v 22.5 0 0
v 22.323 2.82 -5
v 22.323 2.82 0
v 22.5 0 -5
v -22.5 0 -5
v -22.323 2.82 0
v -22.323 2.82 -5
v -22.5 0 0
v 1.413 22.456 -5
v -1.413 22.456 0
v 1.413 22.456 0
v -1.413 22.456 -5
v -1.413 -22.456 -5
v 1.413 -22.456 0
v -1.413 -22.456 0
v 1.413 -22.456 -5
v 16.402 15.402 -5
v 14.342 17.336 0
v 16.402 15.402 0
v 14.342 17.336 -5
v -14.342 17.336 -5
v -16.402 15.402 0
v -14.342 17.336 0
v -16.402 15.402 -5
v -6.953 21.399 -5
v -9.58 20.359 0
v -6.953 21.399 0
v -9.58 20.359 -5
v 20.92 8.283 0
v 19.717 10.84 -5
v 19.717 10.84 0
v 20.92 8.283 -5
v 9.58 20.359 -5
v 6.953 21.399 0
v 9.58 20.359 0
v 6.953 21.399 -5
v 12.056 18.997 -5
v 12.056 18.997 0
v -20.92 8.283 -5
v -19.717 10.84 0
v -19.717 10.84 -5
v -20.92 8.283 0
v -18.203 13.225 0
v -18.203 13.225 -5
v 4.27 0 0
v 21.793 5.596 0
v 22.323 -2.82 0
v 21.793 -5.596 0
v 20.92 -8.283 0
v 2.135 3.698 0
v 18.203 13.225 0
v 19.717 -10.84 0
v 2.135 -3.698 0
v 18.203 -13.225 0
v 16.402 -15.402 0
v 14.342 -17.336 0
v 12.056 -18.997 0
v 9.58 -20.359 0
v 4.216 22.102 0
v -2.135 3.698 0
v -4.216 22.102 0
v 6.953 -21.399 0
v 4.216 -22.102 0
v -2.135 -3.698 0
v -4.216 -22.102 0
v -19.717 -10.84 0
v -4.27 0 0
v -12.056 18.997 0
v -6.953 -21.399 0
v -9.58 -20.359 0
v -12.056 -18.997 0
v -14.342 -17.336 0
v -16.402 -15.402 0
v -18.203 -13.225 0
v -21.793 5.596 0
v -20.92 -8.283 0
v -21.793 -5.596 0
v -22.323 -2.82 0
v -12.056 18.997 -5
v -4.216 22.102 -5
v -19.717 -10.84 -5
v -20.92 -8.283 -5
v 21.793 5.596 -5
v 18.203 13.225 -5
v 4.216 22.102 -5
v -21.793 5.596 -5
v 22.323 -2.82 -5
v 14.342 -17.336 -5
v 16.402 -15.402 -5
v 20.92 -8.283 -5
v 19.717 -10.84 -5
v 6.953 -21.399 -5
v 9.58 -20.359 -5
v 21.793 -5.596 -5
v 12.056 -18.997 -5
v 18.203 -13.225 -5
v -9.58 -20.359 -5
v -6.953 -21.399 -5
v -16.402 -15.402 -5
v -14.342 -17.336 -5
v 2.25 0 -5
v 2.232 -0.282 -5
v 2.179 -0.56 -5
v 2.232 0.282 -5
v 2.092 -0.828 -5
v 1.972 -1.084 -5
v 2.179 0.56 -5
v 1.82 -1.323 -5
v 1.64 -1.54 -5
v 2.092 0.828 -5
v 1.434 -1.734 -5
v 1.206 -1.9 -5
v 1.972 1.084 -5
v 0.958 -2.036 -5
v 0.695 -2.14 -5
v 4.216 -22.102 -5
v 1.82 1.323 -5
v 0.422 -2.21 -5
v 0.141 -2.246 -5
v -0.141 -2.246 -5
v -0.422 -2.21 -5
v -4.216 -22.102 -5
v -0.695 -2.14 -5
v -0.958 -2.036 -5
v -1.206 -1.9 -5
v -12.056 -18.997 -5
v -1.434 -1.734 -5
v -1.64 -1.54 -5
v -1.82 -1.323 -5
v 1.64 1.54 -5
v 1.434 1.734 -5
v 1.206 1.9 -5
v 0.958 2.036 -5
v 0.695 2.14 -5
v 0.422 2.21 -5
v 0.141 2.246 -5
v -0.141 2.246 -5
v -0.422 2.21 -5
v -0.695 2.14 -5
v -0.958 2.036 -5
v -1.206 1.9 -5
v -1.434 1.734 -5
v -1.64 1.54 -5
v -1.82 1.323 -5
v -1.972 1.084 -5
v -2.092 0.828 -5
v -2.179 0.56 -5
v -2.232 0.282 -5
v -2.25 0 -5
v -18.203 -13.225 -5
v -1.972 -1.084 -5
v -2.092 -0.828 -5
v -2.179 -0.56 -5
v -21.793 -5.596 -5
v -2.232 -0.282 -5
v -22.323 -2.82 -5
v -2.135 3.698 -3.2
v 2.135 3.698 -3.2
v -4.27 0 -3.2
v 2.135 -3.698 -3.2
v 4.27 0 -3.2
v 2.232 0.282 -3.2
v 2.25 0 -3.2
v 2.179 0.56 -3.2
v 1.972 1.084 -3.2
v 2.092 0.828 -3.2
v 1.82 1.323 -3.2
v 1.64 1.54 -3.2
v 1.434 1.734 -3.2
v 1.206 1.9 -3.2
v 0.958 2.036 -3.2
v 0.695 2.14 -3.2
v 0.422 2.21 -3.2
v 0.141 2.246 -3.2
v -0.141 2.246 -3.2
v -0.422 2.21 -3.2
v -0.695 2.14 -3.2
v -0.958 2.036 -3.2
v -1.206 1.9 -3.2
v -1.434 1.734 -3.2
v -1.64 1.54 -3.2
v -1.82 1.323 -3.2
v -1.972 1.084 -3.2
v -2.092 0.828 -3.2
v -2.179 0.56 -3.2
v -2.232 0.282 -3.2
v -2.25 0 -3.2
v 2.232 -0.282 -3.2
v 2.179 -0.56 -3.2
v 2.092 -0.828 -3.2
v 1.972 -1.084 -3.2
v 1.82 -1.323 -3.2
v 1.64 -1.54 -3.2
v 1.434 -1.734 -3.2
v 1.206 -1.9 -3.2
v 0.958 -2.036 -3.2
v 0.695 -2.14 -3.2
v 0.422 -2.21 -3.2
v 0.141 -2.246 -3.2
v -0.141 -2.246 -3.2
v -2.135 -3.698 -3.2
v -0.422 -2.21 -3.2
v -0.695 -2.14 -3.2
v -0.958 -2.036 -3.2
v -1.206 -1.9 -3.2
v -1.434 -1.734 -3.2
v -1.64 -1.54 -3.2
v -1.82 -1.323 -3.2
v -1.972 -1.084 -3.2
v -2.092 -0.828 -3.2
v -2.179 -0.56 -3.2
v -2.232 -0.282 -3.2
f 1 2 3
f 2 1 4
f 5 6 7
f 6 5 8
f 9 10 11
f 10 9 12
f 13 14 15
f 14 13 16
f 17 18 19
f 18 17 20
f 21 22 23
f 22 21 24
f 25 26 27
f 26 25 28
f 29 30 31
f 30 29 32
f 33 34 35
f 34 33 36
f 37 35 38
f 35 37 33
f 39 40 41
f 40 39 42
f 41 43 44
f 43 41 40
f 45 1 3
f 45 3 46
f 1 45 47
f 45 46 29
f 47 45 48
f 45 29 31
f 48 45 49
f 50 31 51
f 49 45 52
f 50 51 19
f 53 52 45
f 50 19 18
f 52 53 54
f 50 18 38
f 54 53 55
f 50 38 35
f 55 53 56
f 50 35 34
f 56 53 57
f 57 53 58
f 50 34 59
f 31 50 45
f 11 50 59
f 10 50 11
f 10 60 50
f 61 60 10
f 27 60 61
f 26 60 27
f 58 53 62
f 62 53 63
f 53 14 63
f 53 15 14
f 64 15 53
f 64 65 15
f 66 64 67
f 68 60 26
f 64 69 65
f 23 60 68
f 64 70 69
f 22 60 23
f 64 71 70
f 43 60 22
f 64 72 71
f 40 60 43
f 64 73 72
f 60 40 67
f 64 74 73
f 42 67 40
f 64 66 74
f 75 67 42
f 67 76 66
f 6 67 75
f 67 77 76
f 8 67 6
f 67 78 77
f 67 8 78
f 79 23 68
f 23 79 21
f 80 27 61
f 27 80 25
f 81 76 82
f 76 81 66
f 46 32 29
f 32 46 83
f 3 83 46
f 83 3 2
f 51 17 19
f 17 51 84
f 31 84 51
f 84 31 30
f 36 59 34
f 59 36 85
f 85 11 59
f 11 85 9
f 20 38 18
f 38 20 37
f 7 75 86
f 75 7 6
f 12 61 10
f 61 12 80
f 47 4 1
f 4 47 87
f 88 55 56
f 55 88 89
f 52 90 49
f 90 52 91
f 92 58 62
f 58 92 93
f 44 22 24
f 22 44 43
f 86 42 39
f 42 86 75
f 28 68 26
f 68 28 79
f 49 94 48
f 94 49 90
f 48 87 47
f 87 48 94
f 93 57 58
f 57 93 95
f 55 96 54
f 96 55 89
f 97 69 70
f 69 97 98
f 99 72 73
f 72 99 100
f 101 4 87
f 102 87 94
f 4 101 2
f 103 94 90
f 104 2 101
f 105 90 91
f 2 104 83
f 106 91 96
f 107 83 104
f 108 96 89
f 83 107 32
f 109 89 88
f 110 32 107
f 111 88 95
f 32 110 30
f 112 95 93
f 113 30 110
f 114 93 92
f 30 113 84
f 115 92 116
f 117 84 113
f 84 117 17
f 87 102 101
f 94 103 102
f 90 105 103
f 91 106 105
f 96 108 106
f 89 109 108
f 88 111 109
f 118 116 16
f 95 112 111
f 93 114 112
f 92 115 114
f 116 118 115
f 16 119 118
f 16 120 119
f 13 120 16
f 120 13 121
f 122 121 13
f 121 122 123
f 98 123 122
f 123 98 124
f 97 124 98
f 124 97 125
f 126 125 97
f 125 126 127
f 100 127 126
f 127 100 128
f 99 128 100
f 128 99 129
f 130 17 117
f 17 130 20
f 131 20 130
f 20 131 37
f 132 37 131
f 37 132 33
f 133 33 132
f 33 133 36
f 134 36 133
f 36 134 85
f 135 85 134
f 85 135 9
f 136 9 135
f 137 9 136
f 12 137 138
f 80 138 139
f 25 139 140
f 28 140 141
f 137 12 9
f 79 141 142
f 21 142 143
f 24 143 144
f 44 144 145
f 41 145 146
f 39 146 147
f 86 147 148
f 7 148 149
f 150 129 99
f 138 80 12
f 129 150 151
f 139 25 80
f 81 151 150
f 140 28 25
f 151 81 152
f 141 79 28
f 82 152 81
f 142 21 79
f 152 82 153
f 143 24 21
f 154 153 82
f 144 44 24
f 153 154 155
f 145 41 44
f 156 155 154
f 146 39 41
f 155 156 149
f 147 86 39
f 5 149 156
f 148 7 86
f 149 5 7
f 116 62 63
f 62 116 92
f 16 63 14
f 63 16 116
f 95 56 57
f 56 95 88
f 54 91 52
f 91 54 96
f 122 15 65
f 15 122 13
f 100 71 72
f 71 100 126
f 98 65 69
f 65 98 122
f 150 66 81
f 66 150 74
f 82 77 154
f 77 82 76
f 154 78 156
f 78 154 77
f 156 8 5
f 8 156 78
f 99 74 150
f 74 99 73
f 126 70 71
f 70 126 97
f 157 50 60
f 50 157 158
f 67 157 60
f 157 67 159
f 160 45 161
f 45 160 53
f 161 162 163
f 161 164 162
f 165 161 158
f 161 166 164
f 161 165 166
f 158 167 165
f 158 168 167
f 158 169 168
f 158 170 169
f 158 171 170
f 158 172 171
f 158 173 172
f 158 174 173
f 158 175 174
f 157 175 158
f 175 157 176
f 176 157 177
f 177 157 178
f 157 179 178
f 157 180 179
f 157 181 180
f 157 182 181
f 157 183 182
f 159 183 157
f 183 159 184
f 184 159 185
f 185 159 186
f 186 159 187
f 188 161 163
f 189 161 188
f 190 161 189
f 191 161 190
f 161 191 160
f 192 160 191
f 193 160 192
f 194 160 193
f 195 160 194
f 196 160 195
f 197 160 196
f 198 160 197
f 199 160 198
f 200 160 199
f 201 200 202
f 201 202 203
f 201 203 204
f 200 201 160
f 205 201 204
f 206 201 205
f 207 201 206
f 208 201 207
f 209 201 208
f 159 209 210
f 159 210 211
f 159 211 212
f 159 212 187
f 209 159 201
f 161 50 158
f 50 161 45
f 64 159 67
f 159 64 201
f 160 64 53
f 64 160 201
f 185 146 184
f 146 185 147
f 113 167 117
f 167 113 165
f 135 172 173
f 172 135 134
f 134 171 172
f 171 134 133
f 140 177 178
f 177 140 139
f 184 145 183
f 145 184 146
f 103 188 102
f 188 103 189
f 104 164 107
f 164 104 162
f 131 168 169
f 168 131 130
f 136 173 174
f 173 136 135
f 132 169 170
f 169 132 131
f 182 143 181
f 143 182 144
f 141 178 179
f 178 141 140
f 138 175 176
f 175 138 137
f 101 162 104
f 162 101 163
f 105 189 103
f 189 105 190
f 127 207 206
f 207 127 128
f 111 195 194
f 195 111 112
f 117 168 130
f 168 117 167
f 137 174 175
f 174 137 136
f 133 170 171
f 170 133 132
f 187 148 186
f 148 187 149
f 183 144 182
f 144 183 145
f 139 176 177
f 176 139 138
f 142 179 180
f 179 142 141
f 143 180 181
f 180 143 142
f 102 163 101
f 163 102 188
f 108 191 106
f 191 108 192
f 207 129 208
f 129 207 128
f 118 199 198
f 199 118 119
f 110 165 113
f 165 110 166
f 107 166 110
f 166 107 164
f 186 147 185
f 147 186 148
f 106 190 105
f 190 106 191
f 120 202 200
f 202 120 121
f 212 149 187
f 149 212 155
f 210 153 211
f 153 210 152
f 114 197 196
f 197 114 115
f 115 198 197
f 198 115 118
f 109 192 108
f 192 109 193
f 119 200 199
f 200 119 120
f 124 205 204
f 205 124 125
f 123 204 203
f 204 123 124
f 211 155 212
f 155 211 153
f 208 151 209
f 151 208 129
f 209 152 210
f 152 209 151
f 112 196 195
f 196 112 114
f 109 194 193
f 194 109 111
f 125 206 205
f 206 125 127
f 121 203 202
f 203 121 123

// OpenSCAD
$fn = 50;


difference() {
	union() {
		translate(v = [0, 0, -5.0000000000]) {
			cylinder(h = 5.0000000000, r = 22.5000000000);
		}
		translate(v = [0, 0, -3.5000000000]) {
			cylinder(h = 3.5000000000, r = 2.8750000000);
		}
	}
	union() {
		translate(v = [0, 0, 0]) {
			rotate(a = [0, 0, 0]) {
				difference() {
					union() {
						translate(v = [0, 0, -3.2000000000]) {
							linear_extrude(height = 3.2000000000) {
								polygon(points = [[4.2698000000, 0.0000000000], [2.1349000000, 3.6977552691], [-2.1349000000, 3.6977552691], [-4.2698000000, 0.0000000000], [-2.1349000000, -3.6977552691], [2.1349000000, -3.6977552691]]);
							}
						}
					}
					union();
				}
			}
		}
		#translate(v = [0, 0, -100.0000000000]) {
			cylinder(h = 200, r = 2.2500000000);
		}
	}
}
